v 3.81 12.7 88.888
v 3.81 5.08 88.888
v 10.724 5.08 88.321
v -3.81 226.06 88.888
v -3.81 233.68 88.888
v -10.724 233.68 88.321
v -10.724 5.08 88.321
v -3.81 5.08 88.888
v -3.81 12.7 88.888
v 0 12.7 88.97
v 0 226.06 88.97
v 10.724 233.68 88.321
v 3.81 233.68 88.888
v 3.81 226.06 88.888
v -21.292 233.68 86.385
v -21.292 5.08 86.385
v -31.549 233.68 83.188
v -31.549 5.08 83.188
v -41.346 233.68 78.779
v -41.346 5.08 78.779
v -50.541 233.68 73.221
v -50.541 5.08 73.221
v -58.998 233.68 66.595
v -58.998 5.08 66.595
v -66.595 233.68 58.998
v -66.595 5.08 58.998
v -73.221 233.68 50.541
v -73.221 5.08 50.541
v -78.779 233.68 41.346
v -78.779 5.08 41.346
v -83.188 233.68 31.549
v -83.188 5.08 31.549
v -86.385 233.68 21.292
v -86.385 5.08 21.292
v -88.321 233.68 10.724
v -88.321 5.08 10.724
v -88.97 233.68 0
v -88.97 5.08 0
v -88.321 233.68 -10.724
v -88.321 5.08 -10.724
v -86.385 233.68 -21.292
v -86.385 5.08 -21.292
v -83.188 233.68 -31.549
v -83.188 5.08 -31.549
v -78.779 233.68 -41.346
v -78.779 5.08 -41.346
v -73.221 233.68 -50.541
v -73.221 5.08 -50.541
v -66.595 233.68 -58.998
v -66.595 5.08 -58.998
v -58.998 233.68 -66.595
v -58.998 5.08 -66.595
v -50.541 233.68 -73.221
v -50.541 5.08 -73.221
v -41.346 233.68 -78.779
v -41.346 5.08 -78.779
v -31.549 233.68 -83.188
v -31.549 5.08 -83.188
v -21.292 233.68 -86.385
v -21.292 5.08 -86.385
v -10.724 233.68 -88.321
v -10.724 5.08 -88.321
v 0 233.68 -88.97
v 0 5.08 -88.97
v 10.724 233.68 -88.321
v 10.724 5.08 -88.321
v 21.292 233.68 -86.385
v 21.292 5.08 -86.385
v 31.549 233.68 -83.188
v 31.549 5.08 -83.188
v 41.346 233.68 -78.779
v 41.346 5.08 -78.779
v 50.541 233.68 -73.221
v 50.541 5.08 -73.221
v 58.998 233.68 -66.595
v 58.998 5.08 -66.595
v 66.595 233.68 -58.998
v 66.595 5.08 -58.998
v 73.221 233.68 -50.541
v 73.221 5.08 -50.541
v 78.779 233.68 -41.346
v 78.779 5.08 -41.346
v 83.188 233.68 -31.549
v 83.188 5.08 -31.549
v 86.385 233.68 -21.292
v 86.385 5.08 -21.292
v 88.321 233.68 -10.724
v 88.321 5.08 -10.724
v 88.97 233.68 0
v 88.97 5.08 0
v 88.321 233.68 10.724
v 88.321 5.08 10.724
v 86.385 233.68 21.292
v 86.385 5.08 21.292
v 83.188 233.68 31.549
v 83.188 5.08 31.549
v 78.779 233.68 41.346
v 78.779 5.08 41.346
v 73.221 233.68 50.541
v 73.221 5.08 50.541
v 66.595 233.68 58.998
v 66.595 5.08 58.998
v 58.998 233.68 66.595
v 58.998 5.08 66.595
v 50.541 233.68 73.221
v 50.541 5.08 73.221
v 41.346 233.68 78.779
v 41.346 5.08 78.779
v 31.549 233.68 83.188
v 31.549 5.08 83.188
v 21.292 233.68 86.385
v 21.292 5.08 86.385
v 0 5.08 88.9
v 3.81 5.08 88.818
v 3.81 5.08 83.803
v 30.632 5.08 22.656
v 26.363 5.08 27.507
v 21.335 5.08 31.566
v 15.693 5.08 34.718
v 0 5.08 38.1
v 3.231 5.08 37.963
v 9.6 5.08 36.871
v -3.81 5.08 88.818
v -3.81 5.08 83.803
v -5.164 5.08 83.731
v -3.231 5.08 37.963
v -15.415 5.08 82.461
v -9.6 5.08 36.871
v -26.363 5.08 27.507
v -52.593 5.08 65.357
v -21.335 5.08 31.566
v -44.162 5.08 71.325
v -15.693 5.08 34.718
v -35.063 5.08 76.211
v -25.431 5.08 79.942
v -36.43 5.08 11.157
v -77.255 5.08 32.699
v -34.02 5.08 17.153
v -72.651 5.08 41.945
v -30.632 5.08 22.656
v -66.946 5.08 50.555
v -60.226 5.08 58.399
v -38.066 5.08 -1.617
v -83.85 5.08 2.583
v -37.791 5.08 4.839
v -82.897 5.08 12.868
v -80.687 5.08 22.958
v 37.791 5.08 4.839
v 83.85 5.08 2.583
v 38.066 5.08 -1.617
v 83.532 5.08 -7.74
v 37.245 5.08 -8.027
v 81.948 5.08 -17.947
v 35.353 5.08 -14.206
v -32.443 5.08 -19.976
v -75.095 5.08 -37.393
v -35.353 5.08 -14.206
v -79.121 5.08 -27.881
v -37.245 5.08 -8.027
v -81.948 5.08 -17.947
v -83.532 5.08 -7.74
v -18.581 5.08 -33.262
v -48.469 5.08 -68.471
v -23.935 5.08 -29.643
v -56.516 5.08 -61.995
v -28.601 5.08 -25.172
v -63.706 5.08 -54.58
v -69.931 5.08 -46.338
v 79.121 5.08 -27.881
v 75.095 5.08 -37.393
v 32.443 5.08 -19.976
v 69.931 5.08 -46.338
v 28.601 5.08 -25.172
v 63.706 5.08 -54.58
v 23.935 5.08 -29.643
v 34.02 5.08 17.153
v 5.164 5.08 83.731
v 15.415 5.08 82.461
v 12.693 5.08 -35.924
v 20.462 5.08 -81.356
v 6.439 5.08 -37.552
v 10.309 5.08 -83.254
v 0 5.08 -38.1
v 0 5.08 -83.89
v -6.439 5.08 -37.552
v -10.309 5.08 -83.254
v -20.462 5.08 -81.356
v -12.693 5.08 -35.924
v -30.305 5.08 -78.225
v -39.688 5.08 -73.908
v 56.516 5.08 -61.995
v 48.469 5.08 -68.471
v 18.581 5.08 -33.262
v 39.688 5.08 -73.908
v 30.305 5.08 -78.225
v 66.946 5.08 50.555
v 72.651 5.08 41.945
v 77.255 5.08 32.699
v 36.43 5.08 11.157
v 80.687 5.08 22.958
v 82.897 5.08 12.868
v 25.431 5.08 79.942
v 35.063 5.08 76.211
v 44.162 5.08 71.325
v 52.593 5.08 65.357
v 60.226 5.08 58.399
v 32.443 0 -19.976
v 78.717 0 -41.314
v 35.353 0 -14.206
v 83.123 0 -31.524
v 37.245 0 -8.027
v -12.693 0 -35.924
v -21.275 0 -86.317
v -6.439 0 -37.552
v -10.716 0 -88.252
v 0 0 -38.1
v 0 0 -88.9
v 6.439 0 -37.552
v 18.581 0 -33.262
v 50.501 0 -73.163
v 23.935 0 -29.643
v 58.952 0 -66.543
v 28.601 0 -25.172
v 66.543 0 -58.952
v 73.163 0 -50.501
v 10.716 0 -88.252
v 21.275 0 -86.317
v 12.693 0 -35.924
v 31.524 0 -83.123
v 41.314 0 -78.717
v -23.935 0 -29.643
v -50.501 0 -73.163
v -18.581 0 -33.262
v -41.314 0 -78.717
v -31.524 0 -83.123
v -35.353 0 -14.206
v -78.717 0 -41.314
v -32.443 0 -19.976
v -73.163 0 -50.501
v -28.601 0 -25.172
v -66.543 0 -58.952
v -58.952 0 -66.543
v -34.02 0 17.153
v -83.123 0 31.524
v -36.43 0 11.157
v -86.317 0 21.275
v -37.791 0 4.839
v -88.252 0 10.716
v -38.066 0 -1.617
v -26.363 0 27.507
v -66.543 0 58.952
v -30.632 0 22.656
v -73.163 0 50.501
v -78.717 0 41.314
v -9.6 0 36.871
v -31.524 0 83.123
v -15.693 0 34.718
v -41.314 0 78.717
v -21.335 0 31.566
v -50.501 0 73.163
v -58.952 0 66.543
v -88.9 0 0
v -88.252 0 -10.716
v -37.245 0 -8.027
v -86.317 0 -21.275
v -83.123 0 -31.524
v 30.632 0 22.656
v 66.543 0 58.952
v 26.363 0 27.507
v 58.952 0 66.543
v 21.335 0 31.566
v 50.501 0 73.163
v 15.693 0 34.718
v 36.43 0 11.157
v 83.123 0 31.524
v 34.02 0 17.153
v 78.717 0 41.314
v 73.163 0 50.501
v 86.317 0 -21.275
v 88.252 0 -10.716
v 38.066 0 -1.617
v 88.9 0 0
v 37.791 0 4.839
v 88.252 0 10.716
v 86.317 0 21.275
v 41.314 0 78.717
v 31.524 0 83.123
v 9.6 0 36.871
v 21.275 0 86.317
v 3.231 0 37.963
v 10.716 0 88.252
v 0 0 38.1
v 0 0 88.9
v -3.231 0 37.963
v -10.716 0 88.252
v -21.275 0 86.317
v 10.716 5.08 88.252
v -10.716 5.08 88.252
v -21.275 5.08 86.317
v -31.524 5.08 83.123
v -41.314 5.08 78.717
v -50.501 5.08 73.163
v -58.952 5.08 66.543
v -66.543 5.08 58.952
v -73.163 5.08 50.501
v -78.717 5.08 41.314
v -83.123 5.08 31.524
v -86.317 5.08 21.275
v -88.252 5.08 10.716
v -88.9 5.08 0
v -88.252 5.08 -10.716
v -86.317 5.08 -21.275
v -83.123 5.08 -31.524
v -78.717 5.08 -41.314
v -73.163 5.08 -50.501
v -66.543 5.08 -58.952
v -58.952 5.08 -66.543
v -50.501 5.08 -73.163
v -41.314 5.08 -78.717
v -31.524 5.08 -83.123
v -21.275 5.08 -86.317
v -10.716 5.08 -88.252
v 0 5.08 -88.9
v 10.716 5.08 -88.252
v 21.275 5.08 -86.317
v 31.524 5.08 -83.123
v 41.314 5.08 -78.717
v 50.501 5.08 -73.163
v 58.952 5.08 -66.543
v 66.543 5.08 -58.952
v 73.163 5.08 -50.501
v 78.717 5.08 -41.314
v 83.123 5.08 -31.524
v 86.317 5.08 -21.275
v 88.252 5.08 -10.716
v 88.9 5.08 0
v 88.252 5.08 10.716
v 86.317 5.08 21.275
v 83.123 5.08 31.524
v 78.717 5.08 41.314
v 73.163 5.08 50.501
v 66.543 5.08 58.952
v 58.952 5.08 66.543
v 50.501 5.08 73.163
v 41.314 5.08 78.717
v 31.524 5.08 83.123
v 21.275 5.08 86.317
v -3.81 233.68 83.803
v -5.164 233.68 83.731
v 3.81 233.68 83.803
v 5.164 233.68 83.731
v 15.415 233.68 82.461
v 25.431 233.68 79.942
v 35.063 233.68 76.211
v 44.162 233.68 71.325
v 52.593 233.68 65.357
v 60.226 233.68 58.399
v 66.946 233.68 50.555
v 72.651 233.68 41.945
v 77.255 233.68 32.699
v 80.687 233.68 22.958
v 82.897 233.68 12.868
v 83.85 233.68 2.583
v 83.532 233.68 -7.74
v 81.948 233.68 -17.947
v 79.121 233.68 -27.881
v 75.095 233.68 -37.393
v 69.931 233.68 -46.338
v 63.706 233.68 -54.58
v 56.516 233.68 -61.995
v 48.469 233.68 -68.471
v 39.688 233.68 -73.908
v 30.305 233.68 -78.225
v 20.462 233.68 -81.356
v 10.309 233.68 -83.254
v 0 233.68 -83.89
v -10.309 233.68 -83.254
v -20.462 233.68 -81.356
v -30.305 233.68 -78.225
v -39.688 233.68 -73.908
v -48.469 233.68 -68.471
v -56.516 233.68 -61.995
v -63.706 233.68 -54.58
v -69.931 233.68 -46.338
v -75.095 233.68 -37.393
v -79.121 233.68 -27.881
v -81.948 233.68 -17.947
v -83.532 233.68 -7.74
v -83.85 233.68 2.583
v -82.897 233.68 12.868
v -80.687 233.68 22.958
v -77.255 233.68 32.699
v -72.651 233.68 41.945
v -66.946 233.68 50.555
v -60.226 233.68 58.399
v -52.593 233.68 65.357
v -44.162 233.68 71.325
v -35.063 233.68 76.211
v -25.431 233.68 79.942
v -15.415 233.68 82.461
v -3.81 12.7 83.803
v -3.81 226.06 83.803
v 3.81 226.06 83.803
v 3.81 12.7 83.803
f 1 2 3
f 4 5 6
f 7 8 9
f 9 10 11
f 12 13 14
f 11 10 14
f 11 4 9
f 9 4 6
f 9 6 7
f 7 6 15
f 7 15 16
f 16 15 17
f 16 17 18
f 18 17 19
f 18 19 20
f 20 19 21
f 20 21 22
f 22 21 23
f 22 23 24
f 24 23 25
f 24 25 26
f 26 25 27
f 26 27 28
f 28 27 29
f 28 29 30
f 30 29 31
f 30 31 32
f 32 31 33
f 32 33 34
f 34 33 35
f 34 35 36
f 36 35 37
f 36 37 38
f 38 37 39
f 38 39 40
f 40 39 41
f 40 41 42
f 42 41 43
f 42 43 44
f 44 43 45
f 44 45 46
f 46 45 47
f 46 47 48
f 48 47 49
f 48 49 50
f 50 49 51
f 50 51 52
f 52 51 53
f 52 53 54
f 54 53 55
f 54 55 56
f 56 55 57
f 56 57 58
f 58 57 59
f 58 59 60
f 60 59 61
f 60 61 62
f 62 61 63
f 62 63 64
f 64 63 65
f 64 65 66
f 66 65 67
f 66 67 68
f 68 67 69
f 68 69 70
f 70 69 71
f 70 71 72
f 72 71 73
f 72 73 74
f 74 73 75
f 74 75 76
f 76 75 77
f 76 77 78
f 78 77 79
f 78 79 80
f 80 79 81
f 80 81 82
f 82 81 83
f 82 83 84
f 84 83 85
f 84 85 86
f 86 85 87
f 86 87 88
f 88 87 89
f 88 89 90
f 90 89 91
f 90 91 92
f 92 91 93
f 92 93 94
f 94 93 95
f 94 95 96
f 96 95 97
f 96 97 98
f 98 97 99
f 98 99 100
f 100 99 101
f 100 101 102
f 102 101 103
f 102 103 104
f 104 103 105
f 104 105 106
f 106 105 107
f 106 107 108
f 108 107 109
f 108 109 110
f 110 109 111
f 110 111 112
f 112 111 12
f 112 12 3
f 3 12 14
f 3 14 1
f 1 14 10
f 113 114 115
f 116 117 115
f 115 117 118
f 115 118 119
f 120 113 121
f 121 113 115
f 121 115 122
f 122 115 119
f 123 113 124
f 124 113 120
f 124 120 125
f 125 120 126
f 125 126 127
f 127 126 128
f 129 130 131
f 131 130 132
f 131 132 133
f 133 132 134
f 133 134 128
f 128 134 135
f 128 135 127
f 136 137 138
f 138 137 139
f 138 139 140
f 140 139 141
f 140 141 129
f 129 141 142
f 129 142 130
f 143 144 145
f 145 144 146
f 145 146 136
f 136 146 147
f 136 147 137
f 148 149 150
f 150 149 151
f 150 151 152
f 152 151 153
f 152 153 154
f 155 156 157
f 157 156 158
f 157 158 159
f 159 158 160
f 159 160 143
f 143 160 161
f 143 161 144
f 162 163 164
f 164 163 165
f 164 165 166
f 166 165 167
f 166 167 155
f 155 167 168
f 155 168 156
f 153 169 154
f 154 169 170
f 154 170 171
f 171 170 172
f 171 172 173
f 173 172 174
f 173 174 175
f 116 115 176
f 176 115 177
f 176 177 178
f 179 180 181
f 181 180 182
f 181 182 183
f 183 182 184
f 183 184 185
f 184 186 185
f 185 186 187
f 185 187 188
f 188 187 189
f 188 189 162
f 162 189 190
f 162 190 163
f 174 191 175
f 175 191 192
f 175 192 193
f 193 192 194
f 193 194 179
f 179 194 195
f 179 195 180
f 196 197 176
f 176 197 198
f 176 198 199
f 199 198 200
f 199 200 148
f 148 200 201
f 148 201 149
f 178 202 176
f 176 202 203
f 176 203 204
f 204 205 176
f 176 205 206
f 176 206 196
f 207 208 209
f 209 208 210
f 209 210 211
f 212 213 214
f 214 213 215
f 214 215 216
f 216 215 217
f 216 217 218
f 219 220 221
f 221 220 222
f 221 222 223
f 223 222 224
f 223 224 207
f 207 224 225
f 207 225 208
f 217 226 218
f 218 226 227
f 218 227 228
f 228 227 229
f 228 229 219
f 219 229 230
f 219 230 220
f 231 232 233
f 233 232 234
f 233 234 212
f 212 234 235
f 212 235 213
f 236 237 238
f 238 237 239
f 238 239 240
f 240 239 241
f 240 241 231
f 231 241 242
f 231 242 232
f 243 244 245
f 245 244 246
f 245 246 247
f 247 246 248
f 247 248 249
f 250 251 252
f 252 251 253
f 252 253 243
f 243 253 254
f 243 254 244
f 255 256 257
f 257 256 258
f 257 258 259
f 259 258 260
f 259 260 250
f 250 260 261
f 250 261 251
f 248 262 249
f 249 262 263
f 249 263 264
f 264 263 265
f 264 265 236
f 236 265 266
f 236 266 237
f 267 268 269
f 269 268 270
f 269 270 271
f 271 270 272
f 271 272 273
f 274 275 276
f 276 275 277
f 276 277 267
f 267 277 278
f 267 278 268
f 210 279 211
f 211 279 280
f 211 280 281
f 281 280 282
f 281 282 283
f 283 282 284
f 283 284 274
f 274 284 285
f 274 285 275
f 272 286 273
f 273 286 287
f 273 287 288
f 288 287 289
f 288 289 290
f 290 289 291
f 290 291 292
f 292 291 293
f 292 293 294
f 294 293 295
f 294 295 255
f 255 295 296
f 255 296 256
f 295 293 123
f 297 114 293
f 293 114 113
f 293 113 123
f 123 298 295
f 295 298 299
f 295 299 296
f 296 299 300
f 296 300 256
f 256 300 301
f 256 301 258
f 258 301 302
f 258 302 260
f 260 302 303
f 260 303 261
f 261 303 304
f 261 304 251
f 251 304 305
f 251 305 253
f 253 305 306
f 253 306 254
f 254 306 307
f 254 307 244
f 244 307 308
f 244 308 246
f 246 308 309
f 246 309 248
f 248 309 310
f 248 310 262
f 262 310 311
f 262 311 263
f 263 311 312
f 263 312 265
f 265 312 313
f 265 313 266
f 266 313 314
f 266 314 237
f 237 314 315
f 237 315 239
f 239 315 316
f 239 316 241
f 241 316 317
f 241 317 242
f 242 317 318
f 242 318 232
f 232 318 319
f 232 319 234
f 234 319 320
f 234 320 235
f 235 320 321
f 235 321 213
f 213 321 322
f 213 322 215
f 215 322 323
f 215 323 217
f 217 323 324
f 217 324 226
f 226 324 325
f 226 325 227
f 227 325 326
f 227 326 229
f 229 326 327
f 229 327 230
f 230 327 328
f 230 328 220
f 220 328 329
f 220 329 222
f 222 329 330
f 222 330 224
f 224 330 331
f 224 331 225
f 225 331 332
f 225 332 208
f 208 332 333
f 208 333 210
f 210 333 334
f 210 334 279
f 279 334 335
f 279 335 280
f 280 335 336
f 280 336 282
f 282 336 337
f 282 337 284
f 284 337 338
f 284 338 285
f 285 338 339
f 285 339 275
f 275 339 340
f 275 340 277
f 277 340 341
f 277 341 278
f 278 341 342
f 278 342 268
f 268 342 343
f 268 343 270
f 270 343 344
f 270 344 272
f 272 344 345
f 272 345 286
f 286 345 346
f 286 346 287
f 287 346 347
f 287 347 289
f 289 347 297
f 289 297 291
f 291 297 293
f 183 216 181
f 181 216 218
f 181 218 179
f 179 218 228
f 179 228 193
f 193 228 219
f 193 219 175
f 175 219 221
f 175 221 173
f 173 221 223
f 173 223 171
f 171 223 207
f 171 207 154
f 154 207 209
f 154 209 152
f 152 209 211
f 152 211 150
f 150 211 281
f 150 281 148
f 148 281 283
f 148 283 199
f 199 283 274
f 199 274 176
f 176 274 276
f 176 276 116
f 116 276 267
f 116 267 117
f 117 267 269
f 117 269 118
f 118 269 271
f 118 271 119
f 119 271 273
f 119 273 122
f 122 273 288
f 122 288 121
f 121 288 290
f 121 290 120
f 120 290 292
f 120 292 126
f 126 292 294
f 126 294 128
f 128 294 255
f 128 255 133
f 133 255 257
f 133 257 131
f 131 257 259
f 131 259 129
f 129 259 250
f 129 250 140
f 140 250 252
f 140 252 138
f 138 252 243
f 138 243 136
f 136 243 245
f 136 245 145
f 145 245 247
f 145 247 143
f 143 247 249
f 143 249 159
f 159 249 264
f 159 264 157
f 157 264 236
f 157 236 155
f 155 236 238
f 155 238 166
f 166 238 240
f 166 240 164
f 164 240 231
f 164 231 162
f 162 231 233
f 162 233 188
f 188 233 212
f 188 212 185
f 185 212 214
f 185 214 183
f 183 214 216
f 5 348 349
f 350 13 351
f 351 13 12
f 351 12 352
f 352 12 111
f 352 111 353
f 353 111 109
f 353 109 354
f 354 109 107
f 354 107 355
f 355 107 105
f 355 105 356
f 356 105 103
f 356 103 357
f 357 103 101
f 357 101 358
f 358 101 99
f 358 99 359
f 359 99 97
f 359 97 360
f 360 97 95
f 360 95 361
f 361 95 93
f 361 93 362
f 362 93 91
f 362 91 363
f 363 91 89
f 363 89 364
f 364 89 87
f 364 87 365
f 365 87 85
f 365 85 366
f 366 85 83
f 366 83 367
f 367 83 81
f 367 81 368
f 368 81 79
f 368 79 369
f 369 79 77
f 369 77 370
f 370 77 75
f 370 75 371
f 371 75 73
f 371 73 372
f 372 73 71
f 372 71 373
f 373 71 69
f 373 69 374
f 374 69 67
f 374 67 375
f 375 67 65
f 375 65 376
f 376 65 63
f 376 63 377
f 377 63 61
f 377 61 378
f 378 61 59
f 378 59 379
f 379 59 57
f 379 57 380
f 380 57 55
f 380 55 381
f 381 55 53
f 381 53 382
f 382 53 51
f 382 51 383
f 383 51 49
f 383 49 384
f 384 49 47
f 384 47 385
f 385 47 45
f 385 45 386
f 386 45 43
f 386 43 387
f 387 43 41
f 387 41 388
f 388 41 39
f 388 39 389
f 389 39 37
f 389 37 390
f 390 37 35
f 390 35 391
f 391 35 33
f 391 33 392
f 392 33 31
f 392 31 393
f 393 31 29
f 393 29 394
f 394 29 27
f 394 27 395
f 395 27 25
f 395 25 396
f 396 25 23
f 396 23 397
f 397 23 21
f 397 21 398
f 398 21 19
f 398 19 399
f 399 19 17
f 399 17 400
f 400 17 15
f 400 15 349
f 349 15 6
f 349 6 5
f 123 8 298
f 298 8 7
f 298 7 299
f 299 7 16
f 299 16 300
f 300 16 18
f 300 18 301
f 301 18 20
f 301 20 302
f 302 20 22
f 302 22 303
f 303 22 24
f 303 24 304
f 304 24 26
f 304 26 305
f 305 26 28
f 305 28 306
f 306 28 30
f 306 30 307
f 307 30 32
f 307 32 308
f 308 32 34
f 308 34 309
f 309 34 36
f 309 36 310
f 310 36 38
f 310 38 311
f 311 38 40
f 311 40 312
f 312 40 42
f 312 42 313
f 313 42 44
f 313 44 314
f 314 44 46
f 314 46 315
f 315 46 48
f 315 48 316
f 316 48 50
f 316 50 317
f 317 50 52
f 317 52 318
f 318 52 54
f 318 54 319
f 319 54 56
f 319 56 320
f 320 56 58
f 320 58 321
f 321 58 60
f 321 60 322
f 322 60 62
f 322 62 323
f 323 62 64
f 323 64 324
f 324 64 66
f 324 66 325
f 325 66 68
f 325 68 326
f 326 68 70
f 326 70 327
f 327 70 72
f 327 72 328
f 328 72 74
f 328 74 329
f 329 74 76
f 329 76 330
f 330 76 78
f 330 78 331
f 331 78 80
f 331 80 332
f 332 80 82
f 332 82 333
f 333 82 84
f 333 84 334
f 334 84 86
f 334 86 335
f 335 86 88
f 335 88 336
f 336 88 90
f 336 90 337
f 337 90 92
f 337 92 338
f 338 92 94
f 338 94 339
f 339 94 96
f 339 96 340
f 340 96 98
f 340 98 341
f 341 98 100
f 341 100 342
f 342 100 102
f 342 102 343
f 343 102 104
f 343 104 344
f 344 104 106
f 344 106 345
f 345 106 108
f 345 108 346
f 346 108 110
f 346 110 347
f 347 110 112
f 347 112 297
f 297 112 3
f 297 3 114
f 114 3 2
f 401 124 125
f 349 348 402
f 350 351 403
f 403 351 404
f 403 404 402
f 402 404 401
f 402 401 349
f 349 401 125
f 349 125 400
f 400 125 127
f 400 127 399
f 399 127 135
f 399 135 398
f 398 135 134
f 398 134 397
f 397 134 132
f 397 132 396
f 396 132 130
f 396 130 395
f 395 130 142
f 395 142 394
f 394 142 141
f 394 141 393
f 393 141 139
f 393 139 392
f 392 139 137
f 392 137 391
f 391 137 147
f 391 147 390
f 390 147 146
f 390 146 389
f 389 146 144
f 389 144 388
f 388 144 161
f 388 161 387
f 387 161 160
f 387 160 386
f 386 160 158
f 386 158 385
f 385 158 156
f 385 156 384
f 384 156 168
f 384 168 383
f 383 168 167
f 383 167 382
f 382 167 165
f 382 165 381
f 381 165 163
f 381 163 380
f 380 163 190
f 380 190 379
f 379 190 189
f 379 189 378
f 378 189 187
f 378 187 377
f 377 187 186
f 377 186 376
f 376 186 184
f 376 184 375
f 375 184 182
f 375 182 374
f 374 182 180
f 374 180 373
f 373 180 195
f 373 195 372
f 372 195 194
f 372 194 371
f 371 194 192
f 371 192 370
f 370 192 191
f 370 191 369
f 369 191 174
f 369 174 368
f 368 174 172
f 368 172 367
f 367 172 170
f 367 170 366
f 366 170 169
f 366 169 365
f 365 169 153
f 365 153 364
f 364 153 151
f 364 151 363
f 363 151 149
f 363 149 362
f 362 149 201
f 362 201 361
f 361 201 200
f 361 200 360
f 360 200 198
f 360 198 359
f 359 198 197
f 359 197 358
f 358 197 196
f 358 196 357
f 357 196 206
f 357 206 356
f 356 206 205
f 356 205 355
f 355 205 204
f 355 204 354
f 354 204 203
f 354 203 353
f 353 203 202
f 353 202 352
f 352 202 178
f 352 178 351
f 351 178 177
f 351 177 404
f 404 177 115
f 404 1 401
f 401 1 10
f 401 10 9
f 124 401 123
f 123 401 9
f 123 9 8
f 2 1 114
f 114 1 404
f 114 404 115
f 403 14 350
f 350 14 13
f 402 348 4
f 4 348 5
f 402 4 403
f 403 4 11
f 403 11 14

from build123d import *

# Parameters (mm, degrees)
SKETCH1_R           = 88.9
SKETCH1_R_2         = 38.1
BOSS_EXTRUDE1_DEPTH = 5.08
SKETCH2_R           = 88.969872842
SKETCH2_R_2         = 83.889872842
BOSS_EXTRUDE2_DEPTH = 228.6
SKETCH3_W           = 7.62
SKETCH3_H           = 7.62
CUT_EXTRUDE1_DEPTH  = 89.969872842


with BuildPart() as part:
    # Sketch1 → Boss-Extrude1 (new body)
    with BuildSketch(Plane(origin=(0, 0, 0), x_dir=(1, 0, 0), z_dir=(0, 1, 0))):
        Circle(SKETCH1_R)
        Circle(SKETCH1_R_2, mode=Mode.SUBTRACT)
    extrude(amount=BOSS_EXTRUDE1_DEPTH)

    # Sketch2 → Boss-Extrude2 (add)
    with BuildSketch(Plane(origin=(0, 5.08, 0), x_dir=(1, 0, 0), z_dir=(0, 1, 0))):
        Circle(SKETCH2_R)
        Circle(SKETCH2_R_2, mode=Mode.SUBTRACT)
    extrude(amount=BOSS_EXTRUDE2_DEPTH)

    # Sketch3 → Cut-Extrude1 (cut, through all)
    with BuildSketch(Plane.XY):
        with Locations((0, 229.87)):
            Rectangle(SKETCH3_W, SKETCH3_H)
        with Locations((0, 8.89)):
            Rectangle(SKETCH3_W, SKETCH3_H)
    extrude(amount=CUT_EXTRUDE1_DEPTH, mode=Mode.SUBTRACT)


solid = part.part
